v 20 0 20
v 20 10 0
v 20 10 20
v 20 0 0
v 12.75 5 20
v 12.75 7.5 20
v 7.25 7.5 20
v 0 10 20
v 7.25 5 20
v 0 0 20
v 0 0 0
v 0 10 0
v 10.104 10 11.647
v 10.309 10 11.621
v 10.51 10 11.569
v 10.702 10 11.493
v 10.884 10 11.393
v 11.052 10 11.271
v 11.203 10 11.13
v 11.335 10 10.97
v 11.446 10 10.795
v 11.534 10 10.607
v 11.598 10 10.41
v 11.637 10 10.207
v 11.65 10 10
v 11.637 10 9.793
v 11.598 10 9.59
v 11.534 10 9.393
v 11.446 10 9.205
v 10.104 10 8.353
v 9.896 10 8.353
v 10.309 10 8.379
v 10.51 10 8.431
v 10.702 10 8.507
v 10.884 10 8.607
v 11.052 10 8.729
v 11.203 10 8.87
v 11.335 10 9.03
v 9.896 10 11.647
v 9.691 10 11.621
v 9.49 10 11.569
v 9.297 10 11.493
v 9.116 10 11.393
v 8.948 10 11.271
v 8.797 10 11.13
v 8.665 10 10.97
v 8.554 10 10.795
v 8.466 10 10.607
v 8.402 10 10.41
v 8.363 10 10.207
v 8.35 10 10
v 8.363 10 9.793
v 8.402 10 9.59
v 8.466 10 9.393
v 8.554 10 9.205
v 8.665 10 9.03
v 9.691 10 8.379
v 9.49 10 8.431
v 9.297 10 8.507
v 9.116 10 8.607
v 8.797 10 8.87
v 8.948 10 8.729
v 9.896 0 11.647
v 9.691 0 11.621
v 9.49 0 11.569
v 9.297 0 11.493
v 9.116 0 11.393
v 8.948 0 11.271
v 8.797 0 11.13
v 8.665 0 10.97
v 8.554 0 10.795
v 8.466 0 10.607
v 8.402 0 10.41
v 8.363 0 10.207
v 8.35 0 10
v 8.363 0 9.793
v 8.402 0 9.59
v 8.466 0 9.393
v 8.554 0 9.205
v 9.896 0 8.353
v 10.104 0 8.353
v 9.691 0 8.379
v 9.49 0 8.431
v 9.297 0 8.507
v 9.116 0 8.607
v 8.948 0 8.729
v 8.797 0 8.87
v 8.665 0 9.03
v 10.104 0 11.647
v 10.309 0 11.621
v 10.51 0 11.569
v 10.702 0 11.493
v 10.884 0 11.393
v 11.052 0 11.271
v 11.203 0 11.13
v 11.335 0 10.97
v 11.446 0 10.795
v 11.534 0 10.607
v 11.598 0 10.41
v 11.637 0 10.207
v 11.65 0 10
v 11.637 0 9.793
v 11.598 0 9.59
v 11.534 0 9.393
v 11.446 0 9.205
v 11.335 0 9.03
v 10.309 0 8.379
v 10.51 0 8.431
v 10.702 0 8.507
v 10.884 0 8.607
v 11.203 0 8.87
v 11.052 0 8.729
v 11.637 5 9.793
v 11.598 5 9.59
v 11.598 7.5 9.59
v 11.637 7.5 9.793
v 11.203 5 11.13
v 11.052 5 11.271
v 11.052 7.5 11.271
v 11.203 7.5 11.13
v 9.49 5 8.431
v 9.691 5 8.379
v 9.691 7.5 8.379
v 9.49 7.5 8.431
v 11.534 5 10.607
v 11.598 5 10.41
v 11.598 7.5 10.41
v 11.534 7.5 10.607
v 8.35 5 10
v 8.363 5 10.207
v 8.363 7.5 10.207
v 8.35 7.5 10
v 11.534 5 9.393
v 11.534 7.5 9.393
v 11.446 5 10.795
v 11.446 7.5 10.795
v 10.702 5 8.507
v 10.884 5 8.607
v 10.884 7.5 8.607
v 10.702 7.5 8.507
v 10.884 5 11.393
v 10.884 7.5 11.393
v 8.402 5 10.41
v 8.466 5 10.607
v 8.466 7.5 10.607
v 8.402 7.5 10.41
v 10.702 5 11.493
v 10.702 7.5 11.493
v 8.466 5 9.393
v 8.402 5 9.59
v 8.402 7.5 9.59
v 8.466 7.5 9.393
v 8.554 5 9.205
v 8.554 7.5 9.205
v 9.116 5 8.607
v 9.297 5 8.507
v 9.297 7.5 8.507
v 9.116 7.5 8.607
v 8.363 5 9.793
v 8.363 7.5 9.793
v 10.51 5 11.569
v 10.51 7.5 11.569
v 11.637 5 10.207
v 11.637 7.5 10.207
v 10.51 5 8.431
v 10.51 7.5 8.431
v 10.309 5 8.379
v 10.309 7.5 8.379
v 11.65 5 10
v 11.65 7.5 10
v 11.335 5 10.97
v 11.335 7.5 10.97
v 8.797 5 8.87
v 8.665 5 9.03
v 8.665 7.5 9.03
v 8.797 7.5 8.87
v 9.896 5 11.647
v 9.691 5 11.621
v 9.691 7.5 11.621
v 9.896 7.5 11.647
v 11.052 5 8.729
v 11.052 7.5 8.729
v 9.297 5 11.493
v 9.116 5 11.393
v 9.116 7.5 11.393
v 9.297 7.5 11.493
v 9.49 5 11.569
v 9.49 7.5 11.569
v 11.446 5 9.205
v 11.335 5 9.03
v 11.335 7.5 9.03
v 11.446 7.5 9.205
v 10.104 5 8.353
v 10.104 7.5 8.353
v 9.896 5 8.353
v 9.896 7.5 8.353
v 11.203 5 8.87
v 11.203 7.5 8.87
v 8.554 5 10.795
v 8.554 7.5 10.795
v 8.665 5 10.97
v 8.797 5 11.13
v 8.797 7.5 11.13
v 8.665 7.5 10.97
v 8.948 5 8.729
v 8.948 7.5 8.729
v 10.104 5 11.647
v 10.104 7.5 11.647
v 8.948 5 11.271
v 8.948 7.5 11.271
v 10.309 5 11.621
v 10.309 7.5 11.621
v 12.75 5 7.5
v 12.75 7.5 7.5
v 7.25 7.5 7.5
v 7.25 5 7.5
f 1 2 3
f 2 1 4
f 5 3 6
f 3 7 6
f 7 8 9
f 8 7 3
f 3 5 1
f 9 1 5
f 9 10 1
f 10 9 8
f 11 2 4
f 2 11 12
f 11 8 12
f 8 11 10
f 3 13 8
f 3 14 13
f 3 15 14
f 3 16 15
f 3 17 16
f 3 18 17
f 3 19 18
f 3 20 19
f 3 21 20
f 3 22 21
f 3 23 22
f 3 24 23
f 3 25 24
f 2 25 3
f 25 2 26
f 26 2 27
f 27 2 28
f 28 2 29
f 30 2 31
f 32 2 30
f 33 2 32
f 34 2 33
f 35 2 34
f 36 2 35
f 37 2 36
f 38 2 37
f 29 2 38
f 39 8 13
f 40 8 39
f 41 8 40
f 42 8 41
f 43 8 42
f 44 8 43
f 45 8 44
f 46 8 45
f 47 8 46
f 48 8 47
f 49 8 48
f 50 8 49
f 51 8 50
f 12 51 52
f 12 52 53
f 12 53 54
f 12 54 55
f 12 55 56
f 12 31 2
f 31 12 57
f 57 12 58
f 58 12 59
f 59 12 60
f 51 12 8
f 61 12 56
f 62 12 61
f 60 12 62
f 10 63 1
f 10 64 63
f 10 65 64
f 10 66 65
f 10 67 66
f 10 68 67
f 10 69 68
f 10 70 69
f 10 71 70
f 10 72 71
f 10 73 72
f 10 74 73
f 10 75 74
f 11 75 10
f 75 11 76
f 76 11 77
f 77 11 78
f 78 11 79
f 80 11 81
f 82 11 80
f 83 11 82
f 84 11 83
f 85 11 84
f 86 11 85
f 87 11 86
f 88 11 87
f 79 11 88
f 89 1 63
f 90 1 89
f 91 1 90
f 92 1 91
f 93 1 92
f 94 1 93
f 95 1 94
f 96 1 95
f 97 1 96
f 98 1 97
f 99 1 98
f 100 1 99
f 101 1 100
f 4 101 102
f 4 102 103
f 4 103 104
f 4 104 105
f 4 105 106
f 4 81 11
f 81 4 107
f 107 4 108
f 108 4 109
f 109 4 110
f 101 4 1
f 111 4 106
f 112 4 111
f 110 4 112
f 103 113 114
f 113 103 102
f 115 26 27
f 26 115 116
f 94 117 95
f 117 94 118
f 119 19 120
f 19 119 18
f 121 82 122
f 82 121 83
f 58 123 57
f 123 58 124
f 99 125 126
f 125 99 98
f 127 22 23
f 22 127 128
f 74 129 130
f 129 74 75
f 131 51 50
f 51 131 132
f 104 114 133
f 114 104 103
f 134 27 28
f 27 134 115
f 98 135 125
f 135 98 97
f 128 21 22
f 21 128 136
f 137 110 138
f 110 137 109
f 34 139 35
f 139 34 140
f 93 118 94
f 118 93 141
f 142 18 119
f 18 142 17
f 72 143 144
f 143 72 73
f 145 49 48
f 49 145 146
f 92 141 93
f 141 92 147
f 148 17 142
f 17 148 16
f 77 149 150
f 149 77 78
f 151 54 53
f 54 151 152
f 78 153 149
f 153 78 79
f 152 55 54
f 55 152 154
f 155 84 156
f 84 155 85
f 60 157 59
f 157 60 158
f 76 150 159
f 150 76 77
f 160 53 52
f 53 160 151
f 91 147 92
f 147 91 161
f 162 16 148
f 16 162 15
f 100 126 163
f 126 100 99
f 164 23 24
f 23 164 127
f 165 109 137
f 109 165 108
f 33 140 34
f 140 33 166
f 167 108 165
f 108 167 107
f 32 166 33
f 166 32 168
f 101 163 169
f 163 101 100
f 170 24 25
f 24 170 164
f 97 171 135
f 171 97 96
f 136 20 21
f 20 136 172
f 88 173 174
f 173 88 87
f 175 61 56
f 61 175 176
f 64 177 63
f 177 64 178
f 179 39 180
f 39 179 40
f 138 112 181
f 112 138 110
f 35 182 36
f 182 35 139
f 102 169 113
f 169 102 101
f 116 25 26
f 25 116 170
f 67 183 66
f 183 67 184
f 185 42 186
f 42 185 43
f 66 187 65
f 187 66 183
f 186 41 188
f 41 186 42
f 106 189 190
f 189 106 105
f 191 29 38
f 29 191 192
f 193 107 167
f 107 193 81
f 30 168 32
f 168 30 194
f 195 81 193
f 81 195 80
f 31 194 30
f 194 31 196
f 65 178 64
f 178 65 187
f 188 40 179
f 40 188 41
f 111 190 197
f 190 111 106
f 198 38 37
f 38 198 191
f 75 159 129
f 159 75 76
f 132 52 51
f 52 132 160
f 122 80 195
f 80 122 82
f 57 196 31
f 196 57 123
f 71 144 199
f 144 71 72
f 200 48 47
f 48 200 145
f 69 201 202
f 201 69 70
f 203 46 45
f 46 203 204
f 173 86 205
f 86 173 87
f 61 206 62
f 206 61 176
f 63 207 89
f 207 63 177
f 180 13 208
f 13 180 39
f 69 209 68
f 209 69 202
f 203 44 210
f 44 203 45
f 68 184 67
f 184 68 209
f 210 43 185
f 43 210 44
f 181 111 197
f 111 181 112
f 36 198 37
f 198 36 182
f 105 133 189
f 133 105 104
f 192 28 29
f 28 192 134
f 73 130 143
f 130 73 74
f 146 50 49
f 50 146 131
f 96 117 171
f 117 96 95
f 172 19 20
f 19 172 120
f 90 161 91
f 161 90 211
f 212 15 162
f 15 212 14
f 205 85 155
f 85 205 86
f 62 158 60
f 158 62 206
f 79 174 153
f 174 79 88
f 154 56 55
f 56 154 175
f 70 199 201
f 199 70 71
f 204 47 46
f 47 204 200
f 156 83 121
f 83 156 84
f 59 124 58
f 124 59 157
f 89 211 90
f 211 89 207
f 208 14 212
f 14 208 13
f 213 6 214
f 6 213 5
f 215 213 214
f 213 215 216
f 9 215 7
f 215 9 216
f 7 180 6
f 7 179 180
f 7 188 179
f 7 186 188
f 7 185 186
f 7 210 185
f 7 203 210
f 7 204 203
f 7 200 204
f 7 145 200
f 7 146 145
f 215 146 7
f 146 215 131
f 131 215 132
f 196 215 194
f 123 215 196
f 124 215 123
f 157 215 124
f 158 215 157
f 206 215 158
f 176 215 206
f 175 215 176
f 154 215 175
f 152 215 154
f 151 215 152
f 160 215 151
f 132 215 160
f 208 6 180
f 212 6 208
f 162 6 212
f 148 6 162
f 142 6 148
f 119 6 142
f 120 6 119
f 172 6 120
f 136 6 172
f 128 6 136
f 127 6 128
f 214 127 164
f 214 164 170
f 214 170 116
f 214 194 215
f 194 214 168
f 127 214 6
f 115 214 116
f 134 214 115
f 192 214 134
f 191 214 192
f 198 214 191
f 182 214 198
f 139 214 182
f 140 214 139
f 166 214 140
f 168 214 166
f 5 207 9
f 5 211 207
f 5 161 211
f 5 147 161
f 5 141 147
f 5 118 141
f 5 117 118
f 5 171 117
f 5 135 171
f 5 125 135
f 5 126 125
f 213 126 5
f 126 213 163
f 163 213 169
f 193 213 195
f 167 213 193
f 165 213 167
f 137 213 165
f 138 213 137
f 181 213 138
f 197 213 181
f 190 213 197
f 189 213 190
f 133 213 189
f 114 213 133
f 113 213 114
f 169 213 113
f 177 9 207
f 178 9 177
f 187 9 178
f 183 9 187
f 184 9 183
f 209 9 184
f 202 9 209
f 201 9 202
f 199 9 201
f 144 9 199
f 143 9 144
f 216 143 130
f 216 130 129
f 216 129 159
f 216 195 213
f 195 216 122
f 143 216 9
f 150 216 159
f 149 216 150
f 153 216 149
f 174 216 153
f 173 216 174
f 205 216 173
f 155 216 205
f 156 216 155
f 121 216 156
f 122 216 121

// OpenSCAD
$fn=50;
D=51;
W=10;
H=20;
m=3.1;

module main_captive_nut() {
    difference() {
        cube([20,10,20]);
        #translate([10,20,10]) rotate([90,0,0]) cylinder(20,d=3.3,center=false);
        #translate([7.25,5,7.5]) cube([5.5,2.5,30]);
    }
}

main_captive_nut();
